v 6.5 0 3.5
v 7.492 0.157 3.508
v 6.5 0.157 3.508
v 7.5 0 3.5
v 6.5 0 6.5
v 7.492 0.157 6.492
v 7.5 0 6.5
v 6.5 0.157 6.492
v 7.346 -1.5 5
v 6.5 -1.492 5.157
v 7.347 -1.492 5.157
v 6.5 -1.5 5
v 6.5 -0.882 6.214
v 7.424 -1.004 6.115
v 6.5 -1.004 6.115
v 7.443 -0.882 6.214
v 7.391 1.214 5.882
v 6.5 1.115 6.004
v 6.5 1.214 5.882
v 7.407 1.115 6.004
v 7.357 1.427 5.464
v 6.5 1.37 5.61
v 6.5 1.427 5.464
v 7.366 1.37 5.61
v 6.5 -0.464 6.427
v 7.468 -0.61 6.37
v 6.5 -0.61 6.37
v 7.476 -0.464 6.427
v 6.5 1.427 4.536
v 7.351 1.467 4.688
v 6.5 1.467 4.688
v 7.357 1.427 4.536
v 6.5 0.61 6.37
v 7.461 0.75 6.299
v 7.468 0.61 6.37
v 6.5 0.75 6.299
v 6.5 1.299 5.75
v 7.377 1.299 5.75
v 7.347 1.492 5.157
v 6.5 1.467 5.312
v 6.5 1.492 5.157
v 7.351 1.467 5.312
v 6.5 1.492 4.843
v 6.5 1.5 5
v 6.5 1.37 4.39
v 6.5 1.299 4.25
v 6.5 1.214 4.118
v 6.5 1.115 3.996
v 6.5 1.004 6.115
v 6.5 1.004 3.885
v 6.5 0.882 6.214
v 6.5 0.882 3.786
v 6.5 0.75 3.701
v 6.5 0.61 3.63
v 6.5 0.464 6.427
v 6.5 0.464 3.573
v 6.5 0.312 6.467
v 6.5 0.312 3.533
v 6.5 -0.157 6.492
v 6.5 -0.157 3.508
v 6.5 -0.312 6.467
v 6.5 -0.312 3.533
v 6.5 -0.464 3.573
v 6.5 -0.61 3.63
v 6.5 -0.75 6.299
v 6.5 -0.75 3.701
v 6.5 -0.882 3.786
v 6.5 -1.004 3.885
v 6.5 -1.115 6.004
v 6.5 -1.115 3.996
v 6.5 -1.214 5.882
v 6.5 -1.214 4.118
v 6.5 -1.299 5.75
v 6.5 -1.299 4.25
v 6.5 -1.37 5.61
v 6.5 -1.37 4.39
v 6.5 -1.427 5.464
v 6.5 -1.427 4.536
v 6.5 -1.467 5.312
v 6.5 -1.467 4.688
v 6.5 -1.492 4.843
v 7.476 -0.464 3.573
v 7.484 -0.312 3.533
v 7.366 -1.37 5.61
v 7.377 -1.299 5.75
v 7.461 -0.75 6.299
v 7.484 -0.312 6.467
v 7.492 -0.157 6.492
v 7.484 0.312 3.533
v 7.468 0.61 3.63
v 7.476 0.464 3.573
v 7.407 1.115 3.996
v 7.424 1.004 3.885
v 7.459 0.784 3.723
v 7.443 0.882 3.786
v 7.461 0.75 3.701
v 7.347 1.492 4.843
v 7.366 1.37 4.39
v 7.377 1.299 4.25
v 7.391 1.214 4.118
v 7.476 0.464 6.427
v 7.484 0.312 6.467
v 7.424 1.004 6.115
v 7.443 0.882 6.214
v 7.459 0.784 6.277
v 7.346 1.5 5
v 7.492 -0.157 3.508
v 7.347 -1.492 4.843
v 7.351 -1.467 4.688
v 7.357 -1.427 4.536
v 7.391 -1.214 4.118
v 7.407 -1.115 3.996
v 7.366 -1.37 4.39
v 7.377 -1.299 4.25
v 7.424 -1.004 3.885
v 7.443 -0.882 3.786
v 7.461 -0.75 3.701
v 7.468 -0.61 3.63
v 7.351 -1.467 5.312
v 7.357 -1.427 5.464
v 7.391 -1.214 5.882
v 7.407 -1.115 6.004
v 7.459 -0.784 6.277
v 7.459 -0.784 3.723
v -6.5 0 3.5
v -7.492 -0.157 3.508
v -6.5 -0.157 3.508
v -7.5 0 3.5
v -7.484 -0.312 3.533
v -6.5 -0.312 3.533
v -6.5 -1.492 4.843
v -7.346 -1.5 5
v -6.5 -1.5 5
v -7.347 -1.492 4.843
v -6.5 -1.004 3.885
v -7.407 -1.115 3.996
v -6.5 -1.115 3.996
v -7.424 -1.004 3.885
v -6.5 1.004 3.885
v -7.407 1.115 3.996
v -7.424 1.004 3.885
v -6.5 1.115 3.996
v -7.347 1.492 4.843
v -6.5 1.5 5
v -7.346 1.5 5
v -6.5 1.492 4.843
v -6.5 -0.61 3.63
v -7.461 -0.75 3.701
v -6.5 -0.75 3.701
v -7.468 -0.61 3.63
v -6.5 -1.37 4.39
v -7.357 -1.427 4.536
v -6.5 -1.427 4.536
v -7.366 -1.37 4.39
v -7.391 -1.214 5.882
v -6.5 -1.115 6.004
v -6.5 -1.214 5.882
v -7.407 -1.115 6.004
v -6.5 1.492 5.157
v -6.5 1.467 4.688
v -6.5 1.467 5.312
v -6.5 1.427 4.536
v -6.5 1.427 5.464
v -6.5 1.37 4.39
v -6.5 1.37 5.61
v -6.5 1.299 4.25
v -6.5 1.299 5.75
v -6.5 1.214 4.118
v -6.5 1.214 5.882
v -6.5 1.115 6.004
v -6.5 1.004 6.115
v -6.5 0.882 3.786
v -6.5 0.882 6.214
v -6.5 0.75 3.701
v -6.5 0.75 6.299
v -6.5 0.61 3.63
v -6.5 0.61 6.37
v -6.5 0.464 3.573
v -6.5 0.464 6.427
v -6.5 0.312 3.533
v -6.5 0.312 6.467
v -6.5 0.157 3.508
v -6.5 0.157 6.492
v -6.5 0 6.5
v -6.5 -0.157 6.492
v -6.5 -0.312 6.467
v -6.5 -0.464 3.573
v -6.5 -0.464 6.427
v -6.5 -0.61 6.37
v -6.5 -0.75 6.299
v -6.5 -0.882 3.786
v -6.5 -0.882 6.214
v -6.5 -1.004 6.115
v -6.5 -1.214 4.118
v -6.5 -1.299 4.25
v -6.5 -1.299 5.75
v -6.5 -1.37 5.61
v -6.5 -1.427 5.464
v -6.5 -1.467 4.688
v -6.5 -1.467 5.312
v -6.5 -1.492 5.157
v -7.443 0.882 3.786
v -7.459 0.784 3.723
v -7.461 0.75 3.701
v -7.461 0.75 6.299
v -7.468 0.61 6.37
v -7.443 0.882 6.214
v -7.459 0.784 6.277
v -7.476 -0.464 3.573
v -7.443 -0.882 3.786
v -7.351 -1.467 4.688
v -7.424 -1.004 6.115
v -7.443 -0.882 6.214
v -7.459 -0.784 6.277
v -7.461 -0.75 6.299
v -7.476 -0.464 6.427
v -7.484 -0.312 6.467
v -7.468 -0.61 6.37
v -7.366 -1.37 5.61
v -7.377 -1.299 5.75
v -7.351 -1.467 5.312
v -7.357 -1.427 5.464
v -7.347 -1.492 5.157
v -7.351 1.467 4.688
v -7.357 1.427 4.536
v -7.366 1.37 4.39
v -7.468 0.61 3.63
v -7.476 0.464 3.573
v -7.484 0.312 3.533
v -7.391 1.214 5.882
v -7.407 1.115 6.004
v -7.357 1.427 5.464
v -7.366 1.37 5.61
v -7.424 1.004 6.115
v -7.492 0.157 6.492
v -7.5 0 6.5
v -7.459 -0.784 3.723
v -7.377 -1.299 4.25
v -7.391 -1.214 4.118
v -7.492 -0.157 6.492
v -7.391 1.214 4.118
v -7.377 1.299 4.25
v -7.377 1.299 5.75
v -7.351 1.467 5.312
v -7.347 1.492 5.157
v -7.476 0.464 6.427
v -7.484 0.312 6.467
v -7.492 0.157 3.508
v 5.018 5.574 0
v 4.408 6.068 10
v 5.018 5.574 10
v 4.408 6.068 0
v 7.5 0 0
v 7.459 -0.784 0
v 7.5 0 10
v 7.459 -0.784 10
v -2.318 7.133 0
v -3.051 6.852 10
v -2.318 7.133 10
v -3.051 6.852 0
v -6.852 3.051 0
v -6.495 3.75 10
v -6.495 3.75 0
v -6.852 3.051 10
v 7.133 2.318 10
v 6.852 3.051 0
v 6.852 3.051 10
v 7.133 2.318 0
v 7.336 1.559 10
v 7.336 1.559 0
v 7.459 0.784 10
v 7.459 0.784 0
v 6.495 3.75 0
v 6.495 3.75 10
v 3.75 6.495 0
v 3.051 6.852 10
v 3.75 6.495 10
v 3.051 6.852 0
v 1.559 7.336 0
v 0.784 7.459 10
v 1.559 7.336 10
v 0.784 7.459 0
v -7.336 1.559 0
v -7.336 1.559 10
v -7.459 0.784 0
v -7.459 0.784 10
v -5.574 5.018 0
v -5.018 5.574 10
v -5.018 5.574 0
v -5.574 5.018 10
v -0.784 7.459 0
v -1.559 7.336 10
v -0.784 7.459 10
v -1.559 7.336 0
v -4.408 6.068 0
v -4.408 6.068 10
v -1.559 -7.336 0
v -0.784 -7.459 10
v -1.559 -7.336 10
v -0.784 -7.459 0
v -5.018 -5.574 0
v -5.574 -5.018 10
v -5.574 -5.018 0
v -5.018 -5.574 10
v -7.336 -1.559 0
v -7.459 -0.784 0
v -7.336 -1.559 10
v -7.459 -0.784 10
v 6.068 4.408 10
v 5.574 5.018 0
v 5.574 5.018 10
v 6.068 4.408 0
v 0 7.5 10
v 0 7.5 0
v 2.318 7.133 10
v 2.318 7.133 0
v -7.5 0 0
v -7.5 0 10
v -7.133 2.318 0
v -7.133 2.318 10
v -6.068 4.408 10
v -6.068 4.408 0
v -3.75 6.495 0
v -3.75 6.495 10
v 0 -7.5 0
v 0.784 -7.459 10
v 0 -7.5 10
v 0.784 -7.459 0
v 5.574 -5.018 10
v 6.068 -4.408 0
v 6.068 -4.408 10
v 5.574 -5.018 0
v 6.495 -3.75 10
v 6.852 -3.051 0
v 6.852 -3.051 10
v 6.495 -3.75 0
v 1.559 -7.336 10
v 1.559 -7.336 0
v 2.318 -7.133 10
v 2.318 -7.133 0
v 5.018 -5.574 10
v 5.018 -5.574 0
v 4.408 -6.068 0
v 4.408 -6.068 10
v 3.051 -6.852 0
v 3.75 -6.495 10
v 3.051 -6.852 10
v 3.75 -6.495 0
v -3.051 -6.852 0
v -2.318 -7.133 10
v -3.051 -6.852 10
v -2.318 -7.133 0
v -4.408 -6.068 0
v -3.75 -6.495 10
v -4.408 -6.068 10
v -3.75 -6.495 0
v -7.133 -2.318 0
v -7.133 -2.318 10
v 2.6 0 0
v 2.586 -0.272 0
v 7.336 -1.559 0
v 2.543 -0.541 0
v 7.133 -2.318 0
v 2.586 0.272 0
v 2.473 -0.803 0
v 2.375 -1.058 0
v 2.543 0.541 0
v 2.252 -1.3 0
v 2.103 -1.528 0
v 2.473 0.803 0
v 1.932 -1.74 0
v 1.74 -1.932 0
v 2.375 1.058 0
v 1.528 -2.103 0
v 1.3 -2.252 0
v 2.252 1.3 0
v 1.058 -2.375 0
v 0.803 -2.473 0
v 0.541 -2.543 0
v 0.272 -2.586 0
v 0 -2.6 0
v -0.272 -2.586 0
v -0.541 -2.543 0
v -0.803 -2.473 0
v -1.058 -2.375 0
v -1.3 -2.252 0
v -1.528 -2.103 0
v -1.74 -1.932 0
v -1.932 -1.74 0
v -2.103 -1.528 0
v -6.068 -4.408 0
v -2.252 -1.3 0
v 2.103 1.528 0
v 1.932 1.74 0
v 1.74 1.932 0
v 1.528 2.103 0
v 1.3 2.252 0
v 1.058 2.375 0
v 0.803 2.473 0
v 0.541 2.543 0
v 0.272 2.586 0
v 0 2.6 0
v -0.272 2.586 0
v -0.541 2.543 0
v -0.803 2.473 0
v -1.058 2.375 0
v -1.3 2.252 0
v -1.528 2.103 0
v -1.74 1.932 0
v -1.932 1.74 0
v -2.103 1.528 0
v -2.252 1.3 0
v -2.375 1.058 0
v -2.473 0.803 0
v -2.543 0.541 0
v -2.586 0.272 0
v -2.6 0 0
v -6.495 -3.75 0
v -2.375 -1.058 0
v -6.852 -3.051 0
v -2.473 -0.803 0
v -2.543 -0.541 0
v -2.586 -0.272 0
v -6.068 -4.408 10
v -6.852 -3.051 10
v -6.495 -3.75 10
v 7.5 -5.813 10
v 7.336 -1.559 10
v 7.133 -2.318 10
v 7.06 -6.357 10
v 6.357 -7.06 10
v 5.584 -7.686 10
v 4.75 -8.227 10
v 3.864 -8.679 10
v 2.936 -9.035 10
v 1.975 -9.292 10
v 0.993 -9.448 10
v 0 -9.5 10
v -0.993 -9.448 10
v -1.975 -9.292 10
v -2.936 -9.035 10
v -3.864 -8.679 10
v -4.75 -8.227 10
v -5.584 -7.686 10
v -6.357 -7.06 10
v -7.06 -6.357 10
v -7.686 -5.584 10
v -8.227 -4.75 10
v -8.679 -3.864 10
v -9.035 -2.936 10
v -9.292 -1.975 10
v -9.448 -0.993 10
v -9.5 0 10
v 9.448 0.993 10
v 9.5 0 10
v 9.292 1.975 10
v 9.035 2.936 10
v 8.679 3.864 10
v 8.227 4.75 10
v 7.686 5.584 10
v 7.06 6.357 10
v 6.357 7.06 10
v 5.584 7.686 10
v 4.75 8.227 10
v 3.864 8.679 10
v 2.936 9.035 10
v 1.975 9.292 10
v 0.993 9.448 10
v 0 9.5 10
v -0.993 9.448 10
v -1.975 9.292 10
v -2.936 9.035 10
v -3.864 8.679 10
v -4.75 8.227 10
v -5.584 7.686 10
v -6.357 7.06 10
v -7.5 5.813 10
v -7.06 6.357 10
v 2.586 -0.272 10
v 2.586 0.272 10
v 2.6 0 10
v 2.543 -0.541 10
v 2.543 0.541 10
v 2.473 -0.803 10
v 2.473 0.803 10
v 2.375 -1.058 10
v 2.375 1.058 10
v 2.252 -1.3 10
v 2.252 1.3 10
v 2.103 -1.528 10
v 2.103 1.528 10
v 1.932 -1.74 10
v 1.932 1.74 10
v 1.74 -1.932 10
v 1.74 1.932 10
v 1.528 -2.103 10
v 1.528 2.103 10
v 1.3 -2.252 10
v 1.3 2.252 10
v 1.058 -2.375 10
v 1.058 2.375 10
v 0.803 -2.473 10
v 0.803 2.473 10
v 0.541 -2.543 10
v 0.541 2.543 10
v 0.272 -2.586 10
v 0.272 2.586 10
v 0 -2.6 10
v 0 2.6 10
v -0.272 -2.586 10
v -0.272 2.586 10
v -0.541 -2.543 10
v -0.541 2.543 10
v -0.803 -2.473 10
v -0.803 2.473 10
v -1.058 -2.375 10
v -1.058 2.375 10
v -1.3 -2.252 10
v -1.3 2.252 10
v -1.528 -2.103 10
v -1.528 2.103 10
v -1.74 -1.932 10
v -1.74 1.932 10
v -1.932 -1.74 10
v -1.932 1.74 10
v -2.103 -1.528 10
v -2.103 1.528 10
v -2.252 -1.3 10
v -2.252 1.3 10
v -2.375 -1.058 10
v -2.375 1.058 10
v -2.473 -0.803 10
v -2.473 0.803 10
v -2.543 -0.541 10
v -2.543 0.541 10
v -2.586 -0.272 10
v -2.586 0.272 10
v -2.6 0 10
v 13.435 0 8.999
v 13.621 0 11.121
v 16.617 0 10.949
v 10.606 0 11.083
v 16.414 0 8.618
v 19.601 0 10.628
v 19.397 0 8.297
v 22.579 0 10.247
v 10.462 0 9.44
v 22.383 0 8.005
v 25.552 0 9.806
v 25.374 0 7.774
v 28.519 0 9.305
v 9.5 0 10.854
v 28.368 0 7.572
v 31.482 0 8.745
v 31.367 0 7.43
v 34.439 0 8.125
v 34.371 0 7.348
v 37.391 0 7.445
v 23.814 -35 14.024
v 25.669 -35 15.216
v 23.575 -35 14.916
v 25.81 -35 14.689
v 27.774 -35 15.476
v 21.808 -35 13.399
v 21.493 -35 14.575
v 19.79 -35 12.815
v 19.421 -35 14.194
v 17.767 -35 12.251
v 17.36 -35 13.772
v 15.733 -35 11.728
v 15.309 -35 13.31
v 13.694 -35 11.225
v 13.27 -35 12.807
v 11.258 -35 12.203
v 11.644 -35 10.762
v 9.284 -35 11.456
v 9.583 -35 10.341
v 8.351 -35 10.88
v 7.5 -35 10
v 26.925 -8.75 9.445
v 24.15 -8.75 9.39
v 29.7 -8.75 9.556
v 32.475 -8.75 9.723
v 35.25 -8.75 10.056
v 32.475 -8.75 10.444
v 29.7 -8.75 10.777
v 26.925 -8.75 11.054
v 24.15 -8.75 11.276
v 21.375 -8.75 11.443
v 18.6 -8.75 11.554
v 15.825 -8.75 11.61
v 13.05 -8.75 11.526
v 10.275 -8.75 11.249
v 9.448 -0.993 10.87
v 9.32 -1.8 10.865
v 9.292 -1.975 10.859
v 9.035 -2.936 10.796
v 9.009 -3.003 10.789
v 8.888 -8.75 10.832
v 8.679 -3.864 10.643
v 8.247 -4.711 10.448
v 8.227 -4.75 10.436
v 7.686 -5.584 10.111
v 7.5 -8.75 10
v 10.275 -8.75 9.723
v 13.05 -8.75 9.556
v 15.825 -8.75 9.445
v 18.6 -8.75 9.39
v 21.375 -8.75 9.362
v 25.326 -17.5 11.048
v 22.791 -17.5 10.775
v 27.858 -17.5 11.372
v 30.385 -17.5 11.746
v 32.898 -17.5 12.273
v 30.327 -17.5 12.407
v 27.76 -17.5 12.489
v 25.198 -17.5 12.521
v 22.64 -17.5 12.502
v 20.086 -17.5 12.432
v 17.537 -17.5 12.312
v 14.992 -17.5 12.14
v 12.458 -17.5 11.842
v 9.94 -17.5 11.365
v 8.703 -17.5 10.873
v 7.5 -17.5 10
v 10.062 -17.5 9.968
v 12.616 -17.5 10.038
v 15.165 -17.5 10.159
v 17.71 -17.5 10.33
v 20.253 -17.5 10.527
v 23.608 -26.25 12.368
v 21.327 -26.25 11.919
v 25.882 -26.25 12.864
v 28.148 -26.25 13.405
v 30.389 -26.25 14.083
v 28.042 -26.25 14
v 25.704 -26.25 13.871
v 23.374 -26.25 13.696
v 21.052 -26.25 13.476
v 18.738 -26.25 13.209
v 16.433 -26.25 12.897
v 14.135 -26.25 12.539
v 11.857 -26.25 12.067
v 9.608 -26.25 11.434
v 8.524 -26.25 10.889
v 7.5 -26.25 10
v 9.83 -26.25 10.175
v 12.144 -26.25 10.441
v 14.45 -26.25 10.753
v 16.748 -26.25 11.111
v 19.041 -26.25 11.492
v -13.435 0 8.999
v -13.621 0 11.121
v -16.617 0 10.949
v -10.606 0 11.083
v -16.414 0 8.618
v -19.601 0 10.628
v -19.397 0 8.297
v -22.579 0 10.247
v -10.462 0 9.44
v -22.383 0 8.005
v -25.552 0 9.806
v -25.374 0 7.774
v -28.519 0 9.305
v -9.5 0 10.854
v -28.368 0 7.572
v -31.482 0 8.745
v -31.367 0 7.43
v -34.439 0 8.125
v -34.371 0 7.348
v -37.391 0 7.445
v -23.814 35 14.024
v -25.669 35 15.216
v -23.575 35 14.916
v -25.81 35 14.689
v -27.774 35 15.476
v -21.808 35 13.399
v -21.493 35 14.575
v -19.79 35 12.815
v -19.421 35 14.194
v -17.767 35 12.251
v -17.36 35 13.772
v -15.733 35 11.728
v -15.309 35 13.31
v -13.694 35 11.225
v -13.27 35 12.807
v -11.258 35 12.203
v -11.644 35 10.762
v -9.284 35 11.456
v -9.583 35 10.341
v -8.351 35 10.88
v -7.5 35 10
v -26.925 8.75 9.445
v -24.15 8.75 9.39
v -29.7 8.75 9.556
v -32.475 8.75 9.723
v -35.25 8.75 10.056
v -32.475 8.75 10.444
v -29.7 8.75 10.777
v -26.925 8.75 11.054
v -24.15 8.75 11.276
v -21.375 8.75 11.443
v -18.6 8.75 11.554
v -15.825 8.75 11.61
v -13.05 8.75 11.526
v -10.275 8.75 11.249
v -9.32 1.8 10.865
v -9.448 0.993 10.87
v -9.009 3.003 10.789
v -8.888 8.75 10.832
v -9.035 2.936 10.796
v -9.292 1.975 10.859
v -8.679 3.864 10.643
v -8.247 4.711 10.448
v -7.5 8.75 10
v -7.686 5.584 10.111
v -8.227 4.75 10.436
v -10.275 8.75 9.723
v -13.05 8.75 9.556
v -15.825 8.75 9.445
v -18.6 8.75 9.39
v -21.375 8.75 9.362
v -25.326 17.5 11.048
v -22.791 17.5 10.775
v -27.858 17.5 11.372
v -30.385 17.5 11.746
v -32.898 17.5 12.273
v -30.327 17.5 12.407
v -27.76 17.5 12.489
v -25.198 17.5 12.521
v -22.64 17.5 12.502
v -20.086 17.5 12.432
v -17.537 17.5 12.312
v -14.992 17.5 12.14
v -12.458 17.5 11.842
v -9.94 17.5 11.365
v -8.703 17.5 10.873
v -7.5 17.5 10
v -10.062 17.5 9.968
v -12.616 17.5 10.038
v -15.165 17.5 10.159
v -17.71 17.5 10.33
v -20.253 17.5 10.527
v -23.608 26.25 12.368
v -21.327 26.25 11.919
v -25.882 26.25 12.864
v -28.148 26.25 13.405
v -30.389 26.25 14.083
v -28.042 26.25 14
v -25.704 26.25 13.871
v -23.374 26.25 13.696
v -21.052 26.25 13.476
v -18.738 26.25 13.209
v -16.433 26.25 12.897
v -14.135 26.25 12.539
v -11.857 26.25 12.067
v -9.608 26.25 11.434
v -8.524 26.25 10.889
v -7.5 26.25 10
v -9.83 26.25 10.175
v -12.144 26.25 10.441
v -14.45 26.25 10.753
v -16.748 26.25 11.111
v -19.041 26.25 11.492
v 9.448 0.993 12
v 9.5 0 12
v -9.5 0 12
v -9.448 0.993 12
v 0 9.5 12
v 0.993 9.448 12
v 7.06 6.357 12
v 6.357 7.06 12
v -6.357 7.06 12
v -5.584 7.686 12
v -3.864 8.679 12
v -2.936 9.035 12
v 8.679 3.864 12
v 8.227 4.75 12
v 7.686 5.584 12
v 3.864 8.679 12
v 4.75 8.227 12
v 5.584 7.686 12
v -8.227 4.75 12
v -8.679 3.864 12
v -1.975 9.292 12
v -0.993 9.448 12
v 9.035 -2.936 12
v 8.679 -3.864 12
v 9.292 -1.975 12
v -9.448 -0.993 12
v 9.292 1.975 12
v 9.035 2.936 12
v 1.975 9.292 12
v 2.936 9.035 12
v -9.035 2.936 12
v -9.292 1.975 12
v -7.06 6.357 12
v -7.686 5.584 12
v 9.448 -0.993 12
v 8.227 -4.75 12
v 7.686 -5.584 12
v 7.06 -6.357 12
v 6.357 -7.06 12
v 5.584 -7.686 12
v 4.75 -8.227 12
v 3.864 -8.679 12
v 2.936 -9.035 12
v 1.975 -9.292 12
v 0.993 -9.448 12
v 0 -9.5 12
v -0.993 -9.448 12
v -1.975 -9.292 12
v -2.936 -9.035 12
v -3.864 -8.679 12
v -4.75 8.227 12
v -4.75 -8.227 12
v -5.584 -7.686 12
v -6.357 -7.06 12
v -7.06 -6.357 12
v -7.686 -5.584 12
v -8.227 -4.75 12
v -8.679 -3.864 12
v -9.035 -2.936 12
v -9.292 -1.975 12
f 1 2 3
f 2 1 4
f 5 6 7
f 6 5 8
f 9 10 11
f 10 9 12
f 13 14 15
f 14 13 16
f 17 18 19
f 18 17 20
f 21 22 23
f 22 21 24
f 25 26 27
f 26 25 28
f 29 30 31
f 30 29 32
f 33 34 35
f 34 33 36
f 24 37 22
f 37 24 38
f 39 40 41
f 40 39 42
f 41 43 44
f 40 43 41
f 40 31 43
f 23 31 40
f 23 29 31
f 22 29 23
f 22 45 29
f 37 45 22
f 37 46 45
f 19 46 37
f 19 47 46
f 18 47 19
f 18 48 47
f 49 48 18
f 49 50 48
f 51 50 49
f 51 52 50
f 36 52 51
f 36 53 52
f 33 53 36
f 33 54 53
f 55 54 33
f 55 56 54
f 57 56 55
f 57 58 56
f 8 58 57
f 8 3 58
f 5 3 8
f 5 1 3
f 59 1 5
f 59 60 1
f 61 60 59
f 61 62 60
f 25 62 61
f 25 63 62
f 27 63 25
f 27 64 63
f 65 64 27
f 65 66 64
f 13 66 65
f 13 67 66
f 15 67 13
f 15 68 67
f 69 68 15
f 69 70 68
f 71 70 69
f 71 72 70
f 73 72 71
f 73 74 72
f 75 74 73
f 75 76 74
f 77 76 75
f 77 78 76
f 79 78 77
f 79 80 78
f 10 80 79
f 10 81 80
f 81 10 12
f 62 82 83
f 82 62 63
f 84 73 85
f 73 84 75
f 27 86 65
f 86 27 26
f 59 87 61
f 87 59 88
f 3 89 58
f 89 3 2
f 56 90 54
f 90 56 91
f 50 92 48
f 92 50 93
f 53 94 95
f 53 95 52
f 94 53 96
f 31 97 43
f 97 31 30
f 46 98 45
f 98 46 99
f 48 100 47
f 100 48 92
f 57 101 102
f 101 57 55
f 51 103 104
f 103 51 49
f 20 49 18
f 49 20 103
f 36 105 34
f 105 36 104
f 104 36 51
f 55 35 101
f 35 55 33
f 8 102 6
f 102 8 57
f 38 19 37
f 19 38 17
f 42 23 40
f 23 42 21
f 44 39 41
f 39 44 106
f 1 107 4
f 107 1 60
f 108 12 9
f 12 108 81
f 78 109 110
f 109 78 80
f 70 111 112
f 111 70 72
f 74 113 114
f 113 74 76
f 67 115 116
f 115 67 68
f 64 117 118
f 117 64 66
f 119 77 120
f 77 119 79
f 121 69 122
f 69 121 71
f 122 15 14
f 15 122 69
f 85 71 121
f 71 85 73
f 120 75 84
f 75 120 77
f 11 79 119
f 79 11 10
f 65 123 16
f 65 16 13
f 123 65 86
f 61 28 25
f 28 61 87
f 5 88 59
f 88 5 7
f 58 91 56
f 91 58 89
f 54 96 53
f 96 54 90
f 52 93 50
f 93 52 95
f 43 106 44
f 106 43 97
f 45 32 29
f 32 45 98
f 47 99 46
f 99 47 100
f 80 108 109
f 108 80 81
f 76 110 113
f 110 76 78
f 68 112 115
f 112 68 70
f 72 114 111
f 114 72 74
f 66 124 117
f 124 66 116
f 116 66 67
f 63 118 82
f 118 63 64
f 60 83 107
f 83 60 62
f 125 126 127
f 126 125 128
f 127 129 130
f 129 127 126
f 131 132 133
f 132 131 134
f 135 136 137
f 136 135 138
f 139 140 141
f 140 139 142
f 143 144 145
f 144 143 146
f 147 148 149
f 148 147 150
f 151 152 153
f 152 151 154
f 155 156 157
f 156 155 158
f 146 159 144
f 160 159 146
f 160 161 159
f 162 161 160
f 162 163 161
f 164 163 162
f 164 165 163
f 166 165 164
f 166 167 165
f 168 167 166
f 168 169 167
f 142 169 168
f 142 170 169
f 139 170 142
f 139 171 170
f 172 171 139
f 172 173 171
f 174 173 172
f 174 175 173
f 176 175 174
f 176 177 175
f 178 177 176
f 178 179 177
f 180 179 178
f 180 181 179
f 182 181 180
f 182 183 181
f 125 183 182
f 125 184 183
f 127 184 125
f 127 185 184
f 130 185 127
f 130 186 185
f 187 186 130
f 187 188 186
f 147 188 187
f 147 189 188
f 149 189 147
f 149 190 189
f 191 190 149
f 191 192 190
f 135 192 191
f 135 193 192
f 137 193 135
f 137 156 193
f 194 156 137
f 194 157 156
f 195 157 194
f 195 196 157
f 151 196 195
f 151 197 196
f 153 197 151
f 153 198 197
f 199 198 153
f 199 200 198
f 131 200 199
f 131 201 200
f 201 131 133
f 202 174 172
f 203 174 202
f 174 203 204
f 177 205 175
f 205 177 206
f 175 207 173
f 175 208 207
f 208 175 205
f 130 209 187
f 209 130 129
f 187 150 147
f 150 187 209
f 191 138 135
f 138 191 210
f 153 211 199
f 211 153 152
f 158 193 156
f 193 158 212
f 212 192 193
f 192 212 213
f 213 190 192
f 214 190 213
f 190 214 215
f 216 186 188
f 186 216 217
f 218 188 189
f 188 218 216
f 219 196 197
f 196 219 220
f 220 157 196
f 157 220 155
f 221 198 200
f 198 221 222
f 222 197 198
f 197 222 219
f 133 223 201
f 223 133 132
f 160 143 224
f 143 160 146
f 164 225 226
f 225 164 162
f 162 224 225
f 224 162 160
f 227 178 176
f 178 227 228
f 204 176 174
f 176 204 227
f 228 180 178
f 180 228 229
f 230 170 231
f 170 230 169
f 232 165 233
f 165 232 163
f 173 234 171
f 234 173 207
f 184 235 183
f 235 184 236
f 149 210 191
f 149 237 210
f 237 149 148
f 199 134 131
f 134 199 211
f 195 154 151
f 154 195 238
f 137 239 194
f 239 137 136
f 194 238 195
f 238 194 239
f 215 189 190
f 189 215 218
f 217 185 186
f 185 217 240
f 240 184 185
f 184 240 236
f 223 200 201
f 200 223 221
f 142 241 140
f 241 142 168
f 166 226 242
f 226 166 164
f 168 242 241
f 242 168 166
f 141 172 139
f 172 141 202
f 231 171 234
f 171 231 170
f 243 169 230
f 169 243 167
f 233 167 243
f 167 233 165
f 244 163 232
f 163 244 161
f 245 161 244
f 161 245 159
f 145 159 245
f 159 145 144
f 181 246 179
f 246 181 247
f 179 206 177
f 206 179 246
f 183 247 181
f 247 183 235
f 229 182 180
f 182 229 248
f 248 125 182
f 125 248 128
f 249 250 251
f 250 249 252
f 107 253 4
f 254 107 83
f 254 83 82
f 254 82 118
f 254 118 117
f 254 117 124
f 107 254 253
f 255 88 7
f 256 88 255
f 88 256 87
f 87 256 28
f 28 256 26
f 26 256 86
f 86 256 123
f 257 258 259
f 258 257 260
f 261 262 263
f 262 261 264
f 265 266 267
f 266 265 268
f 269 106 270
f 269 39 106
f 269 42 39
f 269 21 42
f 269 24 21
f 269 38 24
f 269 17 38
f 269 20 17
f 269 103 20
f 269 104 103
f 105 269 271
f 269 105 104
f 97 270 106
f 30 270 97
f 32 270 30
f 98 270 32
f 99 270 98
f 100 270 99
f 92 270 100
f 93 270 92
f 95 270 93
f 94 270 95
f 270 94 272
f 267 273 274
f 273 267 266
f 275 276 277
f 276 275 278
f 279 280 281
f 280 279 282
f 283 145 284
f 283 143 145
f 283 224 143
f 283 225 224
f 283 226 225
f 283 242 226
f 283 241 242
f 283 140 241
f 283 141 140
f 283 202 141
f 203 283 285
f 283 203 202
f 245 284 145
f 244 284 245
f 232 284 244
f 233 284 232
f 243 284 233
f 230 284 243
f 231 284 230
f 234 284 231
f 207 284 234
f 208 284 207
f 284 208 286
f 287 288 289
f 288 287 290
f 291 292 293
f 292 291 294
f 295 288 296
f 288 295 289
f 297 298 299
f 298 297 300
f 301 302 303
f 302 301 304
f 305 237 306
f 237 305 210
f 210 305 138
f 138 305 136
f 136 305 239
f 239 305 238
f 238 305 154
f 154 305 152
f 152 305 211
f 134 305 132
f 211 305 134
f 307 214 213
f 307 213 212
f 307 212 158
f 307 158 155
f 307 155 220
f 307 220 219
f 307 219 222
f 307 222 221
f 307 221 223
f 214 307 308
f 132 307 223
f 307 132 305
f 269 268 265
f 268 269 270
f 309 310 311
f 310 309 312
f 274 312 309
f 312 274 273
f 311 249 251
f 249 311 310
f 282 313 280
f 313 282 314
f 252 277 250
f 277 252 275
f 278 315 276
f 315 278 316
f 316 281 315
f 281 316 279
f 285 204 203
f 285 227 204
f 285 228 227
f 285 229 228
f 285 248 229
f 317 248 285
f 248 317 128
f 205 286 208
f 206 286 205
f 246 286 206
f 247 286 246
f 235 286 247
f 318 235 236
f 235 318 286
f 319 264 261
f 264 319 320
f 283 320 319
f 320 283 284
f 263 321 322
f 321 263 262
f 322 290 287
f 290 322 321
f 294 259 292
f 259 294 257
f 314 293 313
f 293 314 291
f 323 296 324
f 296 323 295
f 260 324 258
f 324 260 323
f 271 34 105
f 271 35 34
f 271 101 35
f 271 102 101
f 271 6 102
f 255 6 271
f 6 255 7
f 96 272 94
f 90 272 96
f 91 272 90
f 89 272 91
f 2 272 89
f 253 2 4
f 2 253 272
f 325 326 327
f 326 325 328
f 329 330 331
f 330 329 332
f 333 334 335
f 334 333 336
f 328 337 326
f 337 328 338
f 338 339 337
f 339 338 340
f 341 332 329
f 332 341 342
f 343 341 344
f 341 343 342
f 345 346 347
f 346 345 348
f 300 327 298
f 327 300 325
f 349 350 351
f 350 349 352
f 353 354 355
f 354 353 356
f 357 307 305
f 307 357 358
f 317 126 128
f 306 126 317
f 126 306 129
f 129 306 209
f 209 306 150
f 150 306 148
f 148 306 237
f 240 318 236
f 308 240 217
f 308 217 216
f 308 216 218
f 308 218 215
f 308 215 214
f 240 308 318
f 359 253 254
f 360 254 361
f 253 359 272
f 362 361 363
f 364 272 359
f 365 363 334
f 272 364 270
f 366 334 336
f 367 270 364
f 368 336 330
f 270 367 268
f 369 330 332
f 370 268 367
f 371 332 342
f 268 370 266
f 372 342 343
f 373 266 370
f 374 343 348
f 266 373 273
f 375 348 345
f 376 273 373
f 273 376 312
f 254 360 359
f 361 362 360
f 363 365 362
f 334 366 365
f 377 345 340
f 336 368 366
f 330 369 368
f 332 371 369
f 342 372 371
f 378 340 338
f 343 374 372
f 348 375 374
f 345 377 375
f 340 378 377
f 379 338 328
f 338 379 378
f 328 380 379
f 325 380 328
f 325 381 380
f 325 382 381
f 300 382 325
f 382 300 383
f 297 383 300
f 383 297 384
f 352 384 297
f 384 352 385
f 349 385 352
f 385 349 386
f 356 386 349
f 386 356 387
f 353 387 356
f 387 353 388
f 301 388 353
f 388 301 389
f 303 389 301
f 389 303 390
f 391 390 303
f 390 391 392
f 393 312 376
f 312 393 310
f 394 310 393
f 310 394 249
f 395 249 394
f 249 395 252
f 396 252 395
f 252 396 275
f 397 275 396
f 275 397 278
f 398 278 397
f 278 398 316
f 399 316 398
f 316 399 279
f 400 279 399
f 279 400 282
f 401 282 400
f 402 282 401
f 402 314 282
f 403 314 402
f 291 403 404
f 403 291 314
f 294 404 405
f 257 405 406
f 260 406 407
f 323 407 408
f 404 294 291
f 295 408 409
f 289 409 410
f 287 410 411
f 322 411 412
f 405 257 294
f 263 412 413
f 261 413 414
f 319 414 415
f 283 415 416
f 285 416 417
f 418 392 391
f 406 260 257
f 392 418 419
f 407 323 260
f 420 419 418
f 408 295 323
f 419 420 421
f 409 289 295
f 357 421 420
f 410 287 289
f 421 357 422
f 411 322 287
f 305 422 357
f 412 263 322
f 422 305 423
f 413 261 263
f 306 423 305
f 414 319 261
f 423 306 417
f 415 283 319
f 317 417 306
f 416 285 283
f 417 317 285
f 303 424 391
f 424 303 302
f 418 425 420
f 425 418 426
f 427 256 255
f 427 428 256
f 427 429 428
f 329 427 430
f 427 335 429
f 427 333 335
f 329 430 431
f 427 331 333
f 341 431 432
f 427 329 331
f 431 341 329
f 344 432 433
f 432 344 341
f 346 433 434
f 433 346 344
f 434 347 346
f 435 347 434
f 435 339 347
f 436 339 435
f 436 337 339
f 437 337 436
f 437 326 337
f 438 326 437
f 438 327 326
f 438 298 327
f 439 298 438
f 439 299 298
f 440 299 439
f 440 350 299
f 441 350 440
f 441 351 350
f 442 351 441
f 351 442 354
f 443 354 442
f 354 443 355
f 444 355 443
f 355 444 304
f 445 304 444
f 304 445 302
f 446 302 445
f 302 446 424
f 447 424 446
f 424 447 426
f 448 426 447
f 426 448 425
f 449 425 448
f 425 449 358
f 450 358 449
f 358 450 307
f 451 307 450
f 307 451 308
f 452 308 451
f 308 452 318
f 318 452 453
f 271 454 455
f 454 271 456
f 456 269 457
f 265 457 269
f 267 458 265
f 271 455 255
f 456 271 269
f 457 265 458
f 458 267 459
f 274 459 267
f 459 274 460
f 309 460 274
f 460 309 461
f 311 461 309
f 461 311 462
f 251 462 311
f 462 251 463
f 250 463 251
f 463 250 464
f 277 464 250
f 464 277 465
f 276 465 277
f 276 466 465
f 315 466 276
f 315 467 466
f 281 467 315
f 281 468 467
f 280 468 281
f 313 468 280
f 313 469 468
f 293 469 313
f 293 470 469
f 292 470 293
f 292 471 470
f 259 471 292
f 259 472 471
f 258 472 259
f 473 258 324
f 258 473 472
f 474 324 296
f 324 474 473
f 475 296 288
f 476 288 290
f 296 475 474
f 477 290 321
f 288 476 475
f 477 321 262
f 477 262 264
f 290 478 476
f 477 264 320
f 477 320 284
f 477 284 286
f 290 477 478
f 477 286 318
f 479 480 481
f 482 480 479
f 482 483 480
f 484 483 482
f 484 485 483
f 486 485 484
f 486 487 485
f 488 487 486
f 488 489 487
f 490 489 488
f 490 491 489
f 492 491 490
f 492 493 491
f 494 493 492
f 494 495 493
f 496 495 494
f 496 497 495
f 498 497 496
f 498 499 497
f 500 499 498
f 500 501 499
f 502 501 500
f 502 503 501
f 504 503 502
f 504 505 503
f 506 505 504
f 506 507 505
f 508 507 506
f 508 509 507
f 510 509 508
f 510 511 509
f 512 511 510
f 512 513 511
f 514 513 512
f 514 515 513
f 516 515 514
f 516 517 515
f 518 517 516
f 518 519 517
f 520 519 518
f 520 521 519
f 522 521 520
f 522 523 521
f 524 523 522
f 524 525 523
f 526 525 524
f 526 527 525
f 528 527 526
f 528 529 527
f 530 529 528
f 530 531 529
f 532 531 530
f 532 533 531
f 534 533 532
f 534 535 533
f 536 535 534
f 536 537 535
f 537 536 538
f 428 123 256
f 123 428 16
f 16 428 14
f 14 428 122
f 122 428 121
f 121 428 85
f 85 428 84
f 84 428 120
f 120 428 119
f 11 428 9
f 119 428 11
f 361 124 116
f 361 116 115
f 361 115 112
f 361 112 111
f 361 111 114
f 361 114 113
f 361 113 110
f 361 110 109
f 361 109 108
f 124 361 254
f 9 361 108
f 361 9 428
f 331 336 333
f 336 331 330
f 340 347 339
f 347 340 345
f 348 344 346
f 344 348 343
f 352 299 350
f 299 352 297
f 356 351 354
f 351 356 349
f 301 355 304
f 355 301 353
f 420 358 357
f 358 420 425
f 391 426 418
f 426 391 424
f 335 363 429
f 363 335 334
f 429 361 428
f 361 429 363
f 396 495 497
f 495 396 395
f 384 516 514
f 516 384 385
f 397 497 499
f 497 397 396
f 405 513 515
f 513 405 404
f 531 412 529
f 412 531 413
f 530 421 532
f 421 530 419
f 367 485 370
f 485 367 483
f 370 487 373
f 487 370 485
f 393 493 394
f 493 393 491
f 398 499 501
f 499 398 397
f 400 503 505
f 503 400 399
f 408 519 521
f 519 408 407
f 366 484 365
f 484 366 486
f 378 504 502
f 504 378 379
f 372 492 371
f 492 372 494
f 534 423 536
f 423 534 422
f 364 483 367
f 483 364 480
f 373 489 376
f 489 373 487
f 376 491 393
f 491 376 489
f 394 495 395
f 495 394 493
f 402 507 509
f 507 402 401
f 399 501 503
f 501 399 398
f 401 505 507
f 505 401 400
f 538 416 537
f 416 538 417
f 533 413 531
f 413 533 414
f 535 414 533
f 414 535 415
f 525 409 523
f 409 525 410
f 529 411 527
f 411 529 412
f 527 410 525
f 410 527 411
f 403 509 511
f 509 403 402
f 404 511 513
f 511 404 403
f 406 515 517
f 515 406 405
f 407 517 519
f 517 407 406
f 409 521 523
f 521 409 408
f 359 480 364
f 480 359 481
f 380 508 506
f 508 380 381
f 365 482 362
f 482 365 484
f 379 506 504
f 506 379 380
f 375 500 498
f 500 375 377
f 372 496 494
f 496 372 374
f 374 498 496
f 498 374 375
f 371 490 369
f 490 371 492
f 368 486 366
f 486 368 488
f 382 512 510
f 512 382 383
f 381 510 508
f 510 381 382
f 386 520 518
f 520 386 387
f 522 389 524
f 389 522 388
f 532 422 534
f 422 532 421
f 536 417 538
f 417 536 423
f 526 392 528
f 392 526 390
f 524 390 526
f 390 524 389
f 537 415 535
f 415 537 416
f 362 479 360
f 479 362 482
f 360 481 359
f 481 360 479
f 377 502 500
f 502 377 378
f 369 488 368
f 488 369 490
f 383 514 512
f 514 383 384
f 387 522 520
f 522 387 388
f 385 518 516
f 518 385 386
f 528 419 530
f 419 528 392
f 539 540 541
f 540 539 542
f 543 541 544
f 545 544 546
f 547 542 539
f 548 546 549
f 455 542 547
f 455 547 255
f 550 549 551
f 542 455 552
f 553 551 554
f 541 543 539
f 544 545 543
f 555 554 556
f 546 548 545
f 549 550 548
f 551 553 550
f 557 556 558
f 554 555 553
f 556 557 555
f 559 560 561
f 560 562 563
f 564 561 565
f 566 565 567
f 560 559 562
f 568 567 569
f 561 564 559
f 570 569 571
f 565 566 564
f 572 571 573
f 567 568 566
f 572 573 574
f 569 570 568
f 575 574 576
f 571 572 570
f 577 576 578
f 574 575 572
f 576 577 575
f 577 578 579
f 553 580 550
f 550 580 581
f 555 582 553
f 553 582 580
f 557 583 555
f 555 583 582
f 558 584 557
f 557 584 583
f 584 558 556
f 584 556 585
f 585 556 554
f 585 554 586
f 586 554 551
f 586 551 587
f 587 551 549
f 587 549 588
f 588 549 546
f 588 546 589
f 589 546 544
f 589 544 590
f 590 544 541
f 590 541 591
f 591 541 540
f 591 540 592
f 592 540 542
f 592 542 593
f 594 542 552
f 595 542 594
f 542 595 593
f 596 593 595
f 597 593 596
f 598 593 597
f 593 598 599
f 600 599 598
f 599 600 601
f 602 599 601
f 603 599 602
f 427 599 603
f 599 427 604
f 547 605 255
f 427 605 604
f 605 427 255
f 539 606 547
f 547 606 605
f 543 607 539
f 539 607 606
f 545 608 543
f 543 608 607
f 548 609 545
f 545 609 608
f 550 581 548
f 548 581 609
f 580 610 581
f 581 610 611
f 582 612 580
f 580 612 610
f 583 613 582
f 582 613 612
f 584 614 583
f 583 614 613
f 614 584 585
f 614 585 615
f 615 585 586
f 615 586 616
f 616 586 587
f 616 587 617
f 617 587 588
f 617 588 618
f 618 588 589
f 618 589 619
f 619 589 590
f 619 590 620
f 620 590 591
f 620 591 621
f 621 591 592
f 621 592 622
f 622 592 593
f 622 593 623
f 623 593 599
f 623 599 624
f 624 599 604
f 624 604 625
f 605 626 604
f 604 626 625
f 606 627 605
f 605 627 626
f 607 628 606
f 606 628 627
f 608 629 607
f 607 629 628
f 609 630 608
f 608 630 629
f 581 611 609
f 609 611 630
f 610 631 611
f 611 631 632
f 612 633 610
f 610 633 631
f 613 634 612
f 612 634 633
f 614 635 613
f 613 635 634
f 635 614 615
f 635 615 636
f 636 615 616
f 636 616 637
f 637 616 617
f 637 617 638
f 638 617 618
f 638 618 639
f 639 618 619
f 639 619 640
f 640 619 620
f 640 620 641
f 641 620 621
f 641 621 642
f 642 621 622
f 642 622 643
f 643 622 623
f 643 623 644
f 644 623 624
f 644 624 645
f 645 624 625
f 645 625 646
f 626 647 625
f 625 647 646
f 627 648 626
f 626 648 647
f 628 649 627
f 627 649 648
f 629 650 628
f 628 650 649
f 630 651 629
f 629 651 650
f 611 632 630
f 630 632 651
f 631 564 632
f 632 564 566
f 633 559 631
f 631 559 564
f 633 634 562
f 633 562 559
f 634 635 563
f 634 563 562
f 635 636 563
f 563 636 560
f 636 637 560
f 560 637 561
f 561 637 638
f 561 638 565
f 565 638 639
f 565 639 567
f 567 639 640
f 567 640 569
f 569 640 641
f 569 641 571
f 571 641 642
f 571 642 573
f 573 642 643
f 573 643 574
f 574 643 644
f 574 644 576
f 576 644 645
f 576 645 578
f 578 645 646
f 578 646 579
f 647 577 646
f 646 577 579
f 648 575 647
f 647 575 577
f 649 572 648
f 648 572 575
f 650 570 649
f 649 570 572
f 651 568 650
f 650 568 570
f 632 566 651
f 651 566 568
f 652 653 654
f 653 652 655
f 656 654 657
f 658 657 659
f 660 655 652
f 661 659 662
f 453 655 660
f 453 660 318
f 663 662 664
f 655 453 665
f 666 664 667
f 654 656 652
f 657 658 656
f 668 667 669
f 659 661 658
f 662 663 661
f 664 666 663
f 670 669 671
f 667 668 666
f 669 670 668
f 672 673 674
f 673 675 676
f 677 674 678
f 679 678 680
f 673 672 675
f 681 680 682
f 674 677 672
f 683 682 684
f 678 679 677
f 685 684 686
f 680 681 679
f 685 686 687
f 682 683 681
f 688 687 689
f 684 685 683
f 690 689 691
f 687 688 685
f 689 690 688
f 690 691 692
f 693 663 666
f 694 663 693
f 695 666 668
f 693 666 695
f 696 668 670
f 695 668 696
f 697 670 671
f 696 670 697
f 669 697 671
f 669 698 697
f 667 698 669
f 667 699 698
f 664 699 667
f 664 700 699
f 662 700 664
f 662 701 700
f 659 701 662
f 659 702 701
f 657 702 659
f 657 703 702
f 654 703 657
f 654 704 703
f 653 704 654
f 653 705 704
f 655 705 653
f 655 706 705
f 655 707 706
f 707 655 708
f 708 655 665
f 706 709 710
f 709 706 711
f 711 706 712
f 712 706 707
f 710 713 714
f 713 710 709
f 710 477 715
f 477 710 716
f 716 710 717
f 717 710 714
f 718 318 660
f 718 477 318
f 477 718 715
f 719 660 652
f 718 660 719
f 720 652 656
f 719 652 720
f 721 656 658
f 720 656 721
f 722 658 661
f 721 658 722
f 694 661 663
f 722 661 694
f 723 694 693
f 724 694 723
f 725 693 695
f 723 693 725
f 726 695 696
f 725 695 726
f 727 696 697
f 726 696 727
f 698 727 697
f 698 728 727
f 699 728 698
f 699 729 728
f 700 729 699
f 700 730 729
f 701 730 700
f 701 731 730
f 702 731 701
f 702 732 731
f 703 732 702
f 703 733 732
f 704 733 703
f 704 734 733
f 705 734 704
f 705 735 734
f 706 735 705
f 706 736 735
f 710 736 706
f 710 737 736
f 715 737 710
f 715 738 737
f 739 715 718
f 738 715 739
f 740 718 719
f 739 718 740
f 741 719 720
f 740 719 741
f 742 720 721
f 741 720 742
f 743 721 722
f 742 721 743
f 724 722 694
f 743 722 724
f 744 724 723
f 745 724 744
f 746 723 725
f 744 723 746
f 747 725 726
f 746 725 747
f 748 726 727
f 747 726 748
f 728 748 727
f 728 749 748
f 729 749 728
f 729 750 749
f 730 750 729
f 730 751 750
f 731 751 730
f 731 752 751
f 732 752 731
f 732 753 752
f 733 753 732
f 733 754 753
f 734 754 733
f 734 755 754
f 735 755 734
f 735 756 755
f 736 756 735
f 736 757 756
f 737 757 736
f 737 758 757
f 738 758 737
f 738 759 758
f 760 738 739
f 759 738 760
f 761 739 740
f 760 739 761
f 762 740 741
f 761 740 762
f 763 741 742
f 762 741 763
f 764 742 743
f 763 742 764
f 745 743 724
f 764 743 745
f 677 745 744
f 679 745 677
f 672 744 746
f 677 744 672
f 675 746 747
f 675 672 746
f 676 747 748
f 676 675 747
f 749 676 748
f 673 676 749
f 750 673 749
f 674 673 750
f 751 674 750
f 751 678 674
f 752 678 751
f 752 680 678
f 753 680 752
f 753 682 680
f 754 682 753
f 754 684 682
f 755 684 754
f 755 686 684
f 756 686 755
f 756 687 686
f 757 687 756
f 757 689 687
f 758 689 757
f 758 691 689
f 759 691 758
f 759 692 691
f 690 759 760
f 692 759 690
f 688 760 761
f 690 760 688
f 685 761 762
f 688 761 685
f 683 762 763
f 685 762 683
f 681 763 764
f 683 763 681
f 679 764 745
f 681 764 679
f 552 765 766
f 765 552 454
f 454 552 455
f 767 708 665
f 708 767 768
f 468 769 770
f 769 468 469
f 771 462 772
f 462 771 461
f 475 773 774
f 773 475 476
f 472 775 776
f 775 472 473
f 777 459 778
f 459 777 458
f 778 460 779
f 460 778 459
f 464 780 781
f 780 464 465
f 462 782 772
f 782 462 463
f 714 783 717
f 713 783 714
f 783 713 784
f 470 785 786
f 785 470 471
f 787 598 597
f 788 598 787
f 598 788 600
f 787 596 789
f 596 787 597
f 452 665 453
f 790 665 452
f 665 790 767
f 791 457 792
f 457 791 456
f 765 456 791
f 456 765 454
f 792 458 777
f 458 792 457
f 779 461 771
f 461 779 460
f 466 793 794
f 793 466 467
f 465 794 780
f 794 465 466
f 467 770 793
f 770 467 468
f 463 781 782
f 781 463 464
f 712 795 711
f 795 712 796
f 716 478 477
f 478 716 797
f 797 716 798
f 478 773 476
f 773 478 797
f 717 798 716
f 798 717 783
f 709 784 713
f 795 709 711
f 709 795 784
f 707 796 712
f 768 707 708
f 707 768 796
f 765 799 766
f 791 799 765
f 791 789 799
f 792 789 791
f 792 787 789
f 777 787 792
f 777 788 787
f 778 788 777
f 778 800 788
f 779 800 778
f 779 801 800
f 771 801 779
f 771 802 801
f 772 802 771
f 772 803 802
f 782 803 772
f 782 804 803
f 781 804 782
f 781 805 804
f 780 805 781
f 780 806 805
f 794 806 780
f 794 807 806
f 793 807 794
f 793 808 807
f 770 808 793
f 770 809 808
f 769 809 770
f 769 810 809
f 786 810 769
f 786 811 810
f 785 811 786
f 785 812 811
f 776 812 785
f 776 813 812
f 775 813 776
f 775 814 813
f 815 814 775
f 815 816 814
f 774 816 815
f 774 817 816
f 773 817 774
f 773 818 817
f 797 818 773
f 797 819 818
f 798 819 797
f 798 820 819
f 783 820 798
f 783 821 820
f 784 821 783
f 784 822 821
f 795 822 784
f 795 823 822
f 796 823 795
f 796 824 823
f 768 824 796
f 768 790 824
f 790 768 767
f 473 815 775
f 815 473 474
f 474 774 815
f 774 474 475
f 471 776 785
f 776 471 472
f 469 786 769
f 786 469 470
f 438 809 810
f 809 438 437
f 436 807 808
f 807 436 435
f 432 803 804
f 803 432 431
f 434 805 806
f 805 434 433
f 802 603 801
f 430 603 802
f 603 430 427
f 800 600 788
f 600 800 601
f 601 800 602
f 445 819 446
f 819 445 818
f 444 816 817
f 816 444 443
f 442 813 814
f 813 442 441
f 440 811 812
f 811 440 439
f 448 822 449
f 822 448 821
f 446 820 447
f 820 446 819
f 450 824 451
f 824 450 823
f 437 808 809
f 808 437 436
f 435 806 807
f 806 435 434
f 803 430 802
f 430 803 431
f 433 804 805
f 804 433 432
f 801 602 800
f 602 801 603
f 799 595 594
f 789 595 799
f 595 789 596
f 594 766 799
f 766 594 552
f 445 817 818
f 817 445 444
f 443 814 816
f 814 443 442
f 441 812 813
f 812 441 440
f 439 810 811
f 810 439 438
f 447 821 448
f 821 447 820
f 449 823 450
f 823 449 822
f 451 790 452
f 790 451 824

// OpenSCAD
/*
 * COMPLETE MOTOR + IMPELLER ASSEMBLY
 * For CFD fluid testing and visualization
 * 
 * This model includes:
 *   - Brushless motor (2204-2206 size)
 *   - Motor shaft (5mm)
 *   - Impeller hub
 *   - 3 impeller variants (bladeless, AI-blades, hybrid)
 *   - Mounting plate
 * 
 * Usage:
 *   - Render full assembly: F6
 *   - Export for CFD: Set EXPORT_MODE = "impeller_only"
 *   - Change design: Set IMPELLER_TYPE = "bladeless" | "bladed" | "hybrid"
 */

// ============================================================================
// CONFIGURATION PARAMETERS (AI-Optimizable)
// ============================================================================

// General Settings
$fn = 60;  // Resolution for CFD export (increase to 100 for final)

// Export Mode
EXPORT_MODE = "impeller_only";  // Options: "full_assembly", "impeller_only", "motor_only"

// Impeller Type
IMPELLER_TYPE = "bladed";  // Options: "bladeless", "bladed", "hybrid"

// Motor Specifications (2204-2206 brushless)
MOTOR_DIAMETER = 28;         // mm
MOTOR_HEIGHT = 25;           // mm
MOTOR_SHAFT_DIAMETER = 5;    // mm (standard)
MOTOR_SHAFT_LENGTH = 15;     // mm (extends above motor)
MOTOR_MOUNT_PATTERN = 16;    // mm (16x16 or 19x19 common)
MOTOR_SCREW_DIAMETER = 3;    // M3 screws

// Impeller Parameters - BLADELESS
BLADELESS_OUTER_DIAMETER = 90;    // mm
BLADELESS_AIR_GAP = 0.8;          // mm (optimize: 0.6-1.2)
BLADELESS_THROAT_RATIO = 0.72;    // (optimize: 0.65-0.80)
BLADELESS_EXPANSION_ANGLE = 18;   // degrees (optimize: 12-25)
BLADELESS_RING_THICKNESS = 3;     // mm (optimize: 2-4)
BLADELESS_HEIGHT = 24;            // mm

// Impeller Parameters - BLADED
BLADED_DIAMETER = 85;
BLADED_HUB_DIAMETER = 15;         // mm (optimize: 12-20)
BLADED_BLADE_COUNT = 2;
BLADED_ROOT_CHORD = 30;
BLADED_TIP_CHORD_RATIO = 0.7;    // (optimize: 0.6-0.8)
BLADED_BLADE_THICKNESS = 2;       // mm (optimize: 1.5-3)
BLADED_BLADE_TWIST = -20;
BLADED_ATTACK_ANGLE = -5;
BLADED_BLADE_HEIGHT = 12;         // mm (optimize: 10-15)

// Hub Parameters
HUB_DIAMETER = 15;
HUB_HEIGHT = 10;
HUB_SET_SCREW_DIAMETER = 3;  // M3 set screw

// Mounting Plate
PLATE_SIZE = 50;
PLATE_THICKNESS = 3;

// ============================================================================
// MOTOR MODEL
// ============================================================================

module brushless_motor_2204() {
    color("DarkSlateGray") {
        // Motor can (bell)
        difference() {
            cylinder(h=MOTOR_HEIGHT, d=MOTOR_DIAMETER);
            
            // Hollow inside (weight reduction visualization)
            translate([0, 0, -0.5])
                cylinder(h=MOTOR_HEIGHT - 5, d=MOTOR_DIAMETER - 4);
            
            // Mounting holes
            for(i = [0:3]) {
                rotate([0, 0, i * 90])
                    translate([MOTOR_MOUNT_PATTERN/2, 0, MOTOR_HEIGHT/2])
                        rotate([90, 0, 0])
                            cylinder(h=MOTOR_DIAMETER, d=MOTOR_SCREW_DIAMETER, center=true);
            }
        }
        
        // Motor base
        translate([0, 0, -3])
            cylinder(h=3, d=MOTOR_DIAMETER - 2);
    }
    
    // Motor shaft
    color("Silver")
        translate([0, 0, MOTOR_HEIGHT])
            cylinder(h=MOTOR_SHAFT_LENGTH, d=MOTOR_SHAFT_DIAMETER);
    
    // Shaft tip (for hub attachment)
    color("Silver")
        translate([0, 0, MOTOR_HEIGHT + MOTOR_SHAFT_LENGTH])
            cylinder(h=2, d=MOTOR_SHAFT_DIAMETER - 0.5);
}

// ============================================================================
// IMPELLER HUB
// ============================================================================

module impeller_hub() {
    color("Gray")
    difference() {
        // Hub body
        cylinder(h=HUB_HEIGHT, d=HUB_DIAMETER);
        
        // Shaft hole (5mm + 0.2mm clearance)
        translate([0, 0, -0.5])
            cylinder(h=HUB_HEIGHT + 1, d=MOTOR_SHAFT_DIAMETER + 0.2);
        
        // Set screw holes (2x for balance)
        for(i = [0:1]) {
            rotate([0, 0, i * 180])
                translate([HUB_DIAMETER/2 - 1, 0, HUB_HEIGHT/2])
                    rotate([0, 90, 0])
                        cylinder(h=5, d=HUB_SET_SCREW_DIAMETER);
        }
    }
}

// ============================================================================
// BLADELESS IMPELLER (Dyson-style)
// ============================================================================

module bladeless_impeller() {
    outer_r = BLADELESS_OUTER_DIAMETER / 2;
    throat_r = outer_r * BLADELESS_THROAT_RATIO;
    gap = BLADELESS_AIR_GAP;
    
    color("SkyBlue", 0.7)
    difference() {
        // Outer ring
        rotate_extrude()
            translate([outer_r - BLADELESS_RING_THICKNESS/2, BLADELESS_HEIGHT/2, 0])
                circle(d=BLADELESS_RING_THICKNESS + BLADELESS_HEIGHT);
        
        // Inner air gap (critical for Coanda effect)
        rotate_extrude()
            translate([outer_r - gap - BLADELESS_RING_THICKNESS/2, BLADELESS_HEIGHT/2, 0])
                circle(d=BLADELESS_RING_THICKNESS + BLADELESS_HEIGHT - 2*gap);
    }
    
    // Base plate (connects to hub)
    color("SkyBlue", 0.7)
    translate([0, 0, -2])
        difference() {
            cylinder(h=2, d=outer_r * 2);
            translate([0, 0, -0.5])
                cylinder(h=3, d=HUB_DIAMETER + 1);
        }
    
    // Air inlet (bell-shaped for smooth flow)
    color("SkyBlue", 0.7)
    translate([0, 0, -2]) {
        difference() {
            cylinder(h=15, d1=throat_r * 2, d2=outer_r * 1.8);
            translate([0, 0, -0.5])
                cylinder(h=16, d1=throat_r * 2 - 3, d2=outer_r * 1.8 - 3);
        }
    }
}

// ============================================================================
// AI-OPTIMIZED BLADED IMPELLER (NACA 2412 profile)
// ============================================================================

module naca_2412_blade(chord, height, twist_angle, attack_angle) {
    // Simplified NACA 2412 airfoil profile
    // Using parametric approximation for 3D printing
    
    color("LightSteelBlue", 0.8)
    linear_extrude(height=height, twist=twist_angle, scale=BLADED_TIP_CHORD_RATIO) {
        rotate([0, 0, attack_angle])
        polygon([
            // Upper surface (cambered)
            [0, 0],
            [chord * 0.05, chord * 0.03],
            [chord * 0.1, chord * 0.045],
            [chord * 0.2, chord * 0.055],
            [chord * 0.3, chord * 0.058],
            [chord * 0.4, chord * 0.056],
            [chord * 0.5, chord * 0.052],
            [chord * 0.6, chord * 0.046],
            [chord * 0.7, chord * 0.038],
            [chord * 0.8, chord * 0.028],
            [chord * 0.9, chord * 0.016],
            [chord * 1.0, chord * 0.002],
            // Lower surface (less cambered)
            [chord * 0.9, -chord * 0.010],
            [chord * 0.8, -chord * 0.016],
            [chord * 0.7, -chord * 0.020],
            [chord * 0.6, -chord * 0.022],
            [chord * 0.5, -chord * 0.023],
            [chord * 0.4, -chord * 0.022],
            [chord * 0.3, -chord * 0.020],
            [chord * 0.2, -chord * 0.016],
            [chord * 0.1, -chord * 0.010],
            [chord * 0.05, -chord * 0.005],
        ]);
    }
}

module bladed_impeller() {
    // Blades
    for(i = [0 : BLADED_BLADE_COUNT - 1]) {
        rotate([0, 0, i * (360 / BLADED_BLADE_COUNT)])
            translate([BLADED_HUB_DIAMETER/2, 0, 0])
                rotate([90, 0, 0])
                    naca_2412_blade(
                        BLADED_ROOT_CHORD, 
                        (BLADED_DIAMETER - BLADED_HUB_DIAMETER) / 2,
                        BLADED_BLADE_TWIST,
                        BLADED_ATTACK_ANGLE
                    );
    }
    
    // Hub disk (connects blades)
    color("LightSteelBlue", 0.8)
    cylinder(h=2, d=BLADED_HUB_DIAMETER + 4);
}

// ============================================================================
// HYBRID IMPELLER (Blades inside bladeless ring)
// ============================================================================

module hybrid_impeller() {
    // Outer bladeless ring
    bladeless_impeller();
    
    // Inner bladed impeller (scaled down to fit)
    scale([0.85, 0.85, 1])
        bladed_impeller();
}

// ============================================================================
// MOUNTING PLATE
// ============================================================================

module mounting_plate() {
    color("DimGray")
    difference() {
        // Base plate
        translate([-PLATE_SIZE/2, -PLATE_SIZE/2, 0])
            cube([PLATE_SIZE, PLATE_SIZE, PLATE_THICKNESS]);
        
        // Center hole for motor shaft
        translate([0, 0, -0.5])
            cylinder(h=PLATE_THICKNESS + 1, d=MOTOR_DIAMETER + 2);
        
        // Motor mounting holes
        for(i = [0:3]) {
            rotate([0, 0, i * 90])
                translate([MOTOR_MOUNT_PATTERN/2, 0, -0.5])
                    cylinder(h=PLATE_THICKNESS + 1, d=MOTOR_SCREW_DIAMETER);
        }
    }
}

// ============================================================================
// COMPLETE ASSEMBLY
// ============================================================================

module complete_assembly() {
    // Mounting plate (bottom)
    translate([0, 0, -PLATE_THICKNESS])
        mounting_plate();
    
    // Motor
    translate([0, 0, 0])
        brushless_motor_2204();
    
    // Hub (on shaft)
    translate([0, 0, MOTOR_HEIGHT + MOTOR_SHAFT_LENGTH - 2])
        impeller_hub();
    
    // Impeller (on hub)
    translate([0, 0, MOTOR_HEIGHT + MOTOR_SHAFT_LENGTH + HUB_HEIGHT]) {
        if (IMPELLER_TYPE == "bladeless") {
            bladeless_impeller();
        } else if (IMPELLER_TYPE == "bladed") {
            bladed_impeller();
        } else if (IMPELLER_TYPE == "hybrid") {
            hybrid_impeller();
        }
    }
}

// ============================================================================
// RENDER BASED ON EXPORT MODE
// ============================================================================

if (EXPORT_MODE == "full_assembly") {
    complete_assembly();
} 
else if (EXPORT_MODE == "impeller_only") {
    // For CFD testing - impeller + hub only
    impeller_hub();
    translate([0, 0, HUB_HEIGHT]) {
        if (IMPELLER_TYPE == "bladeless") {
            bladeless_impeller();
        } else if (IMPELLER_TYPE == "bladed") {
            bladed_impeller();
        } else if (IMPELLER_TYPE == "hybrid") {
            hybrid_impeller();
        }
    }
}
else if (EXPORT_MODE == "motor_only") {
    brushless_motor_2204();
}

// ============================================================================
// ANNOTATIONS FOR VISUALIZATION
// ============================================================================

// Uncomment to show dimensions
/*
color("Red", 0.3)
translate([BLADED_DIAMETER/2 + 10, 0, 20])
    text(str("Ø", BLADED_DIAMETER, "mm"), size=5, halign="left");

color("Green", 0.3)
translate([0, BLADED_DIAMETER/2 + 10, 20])
    text(str(BLADED_BLADE_COUNT, " blades"), size=5, halign="center");
*/

// ============================================================================
// EXPORT NOTES
// ============================================================================

/*
 * TO EXPORT FOR CFD TESTING:
 * 
 * 1. Set EXPORT_MODE = "impeller_only"
 * 2. Set IMPELLER_TYPE = "bladeless" (or "bladed" or "hybrid")
 * 3. Press F6 to render
 * 4. File → Export → Export as STL
 * 5. Use filename: impeller_bladeless_fn60.stl
 * 
 * FOR OPTIMIZATION:
 * - Modify parameters at top (marked with "optimize:")
 * - Re-render and export
 * - Upload to SimScale for CFD
 * - Compare results
 * 
 * RECOMMENDED CFD SETTINGS:
 * - Solver: k-omega SST
 * - RPM: 5000, 7000, 9000
 * - Mesh: 3-5M cells
 * - Boundary: Rotating zone on impeller
 */
